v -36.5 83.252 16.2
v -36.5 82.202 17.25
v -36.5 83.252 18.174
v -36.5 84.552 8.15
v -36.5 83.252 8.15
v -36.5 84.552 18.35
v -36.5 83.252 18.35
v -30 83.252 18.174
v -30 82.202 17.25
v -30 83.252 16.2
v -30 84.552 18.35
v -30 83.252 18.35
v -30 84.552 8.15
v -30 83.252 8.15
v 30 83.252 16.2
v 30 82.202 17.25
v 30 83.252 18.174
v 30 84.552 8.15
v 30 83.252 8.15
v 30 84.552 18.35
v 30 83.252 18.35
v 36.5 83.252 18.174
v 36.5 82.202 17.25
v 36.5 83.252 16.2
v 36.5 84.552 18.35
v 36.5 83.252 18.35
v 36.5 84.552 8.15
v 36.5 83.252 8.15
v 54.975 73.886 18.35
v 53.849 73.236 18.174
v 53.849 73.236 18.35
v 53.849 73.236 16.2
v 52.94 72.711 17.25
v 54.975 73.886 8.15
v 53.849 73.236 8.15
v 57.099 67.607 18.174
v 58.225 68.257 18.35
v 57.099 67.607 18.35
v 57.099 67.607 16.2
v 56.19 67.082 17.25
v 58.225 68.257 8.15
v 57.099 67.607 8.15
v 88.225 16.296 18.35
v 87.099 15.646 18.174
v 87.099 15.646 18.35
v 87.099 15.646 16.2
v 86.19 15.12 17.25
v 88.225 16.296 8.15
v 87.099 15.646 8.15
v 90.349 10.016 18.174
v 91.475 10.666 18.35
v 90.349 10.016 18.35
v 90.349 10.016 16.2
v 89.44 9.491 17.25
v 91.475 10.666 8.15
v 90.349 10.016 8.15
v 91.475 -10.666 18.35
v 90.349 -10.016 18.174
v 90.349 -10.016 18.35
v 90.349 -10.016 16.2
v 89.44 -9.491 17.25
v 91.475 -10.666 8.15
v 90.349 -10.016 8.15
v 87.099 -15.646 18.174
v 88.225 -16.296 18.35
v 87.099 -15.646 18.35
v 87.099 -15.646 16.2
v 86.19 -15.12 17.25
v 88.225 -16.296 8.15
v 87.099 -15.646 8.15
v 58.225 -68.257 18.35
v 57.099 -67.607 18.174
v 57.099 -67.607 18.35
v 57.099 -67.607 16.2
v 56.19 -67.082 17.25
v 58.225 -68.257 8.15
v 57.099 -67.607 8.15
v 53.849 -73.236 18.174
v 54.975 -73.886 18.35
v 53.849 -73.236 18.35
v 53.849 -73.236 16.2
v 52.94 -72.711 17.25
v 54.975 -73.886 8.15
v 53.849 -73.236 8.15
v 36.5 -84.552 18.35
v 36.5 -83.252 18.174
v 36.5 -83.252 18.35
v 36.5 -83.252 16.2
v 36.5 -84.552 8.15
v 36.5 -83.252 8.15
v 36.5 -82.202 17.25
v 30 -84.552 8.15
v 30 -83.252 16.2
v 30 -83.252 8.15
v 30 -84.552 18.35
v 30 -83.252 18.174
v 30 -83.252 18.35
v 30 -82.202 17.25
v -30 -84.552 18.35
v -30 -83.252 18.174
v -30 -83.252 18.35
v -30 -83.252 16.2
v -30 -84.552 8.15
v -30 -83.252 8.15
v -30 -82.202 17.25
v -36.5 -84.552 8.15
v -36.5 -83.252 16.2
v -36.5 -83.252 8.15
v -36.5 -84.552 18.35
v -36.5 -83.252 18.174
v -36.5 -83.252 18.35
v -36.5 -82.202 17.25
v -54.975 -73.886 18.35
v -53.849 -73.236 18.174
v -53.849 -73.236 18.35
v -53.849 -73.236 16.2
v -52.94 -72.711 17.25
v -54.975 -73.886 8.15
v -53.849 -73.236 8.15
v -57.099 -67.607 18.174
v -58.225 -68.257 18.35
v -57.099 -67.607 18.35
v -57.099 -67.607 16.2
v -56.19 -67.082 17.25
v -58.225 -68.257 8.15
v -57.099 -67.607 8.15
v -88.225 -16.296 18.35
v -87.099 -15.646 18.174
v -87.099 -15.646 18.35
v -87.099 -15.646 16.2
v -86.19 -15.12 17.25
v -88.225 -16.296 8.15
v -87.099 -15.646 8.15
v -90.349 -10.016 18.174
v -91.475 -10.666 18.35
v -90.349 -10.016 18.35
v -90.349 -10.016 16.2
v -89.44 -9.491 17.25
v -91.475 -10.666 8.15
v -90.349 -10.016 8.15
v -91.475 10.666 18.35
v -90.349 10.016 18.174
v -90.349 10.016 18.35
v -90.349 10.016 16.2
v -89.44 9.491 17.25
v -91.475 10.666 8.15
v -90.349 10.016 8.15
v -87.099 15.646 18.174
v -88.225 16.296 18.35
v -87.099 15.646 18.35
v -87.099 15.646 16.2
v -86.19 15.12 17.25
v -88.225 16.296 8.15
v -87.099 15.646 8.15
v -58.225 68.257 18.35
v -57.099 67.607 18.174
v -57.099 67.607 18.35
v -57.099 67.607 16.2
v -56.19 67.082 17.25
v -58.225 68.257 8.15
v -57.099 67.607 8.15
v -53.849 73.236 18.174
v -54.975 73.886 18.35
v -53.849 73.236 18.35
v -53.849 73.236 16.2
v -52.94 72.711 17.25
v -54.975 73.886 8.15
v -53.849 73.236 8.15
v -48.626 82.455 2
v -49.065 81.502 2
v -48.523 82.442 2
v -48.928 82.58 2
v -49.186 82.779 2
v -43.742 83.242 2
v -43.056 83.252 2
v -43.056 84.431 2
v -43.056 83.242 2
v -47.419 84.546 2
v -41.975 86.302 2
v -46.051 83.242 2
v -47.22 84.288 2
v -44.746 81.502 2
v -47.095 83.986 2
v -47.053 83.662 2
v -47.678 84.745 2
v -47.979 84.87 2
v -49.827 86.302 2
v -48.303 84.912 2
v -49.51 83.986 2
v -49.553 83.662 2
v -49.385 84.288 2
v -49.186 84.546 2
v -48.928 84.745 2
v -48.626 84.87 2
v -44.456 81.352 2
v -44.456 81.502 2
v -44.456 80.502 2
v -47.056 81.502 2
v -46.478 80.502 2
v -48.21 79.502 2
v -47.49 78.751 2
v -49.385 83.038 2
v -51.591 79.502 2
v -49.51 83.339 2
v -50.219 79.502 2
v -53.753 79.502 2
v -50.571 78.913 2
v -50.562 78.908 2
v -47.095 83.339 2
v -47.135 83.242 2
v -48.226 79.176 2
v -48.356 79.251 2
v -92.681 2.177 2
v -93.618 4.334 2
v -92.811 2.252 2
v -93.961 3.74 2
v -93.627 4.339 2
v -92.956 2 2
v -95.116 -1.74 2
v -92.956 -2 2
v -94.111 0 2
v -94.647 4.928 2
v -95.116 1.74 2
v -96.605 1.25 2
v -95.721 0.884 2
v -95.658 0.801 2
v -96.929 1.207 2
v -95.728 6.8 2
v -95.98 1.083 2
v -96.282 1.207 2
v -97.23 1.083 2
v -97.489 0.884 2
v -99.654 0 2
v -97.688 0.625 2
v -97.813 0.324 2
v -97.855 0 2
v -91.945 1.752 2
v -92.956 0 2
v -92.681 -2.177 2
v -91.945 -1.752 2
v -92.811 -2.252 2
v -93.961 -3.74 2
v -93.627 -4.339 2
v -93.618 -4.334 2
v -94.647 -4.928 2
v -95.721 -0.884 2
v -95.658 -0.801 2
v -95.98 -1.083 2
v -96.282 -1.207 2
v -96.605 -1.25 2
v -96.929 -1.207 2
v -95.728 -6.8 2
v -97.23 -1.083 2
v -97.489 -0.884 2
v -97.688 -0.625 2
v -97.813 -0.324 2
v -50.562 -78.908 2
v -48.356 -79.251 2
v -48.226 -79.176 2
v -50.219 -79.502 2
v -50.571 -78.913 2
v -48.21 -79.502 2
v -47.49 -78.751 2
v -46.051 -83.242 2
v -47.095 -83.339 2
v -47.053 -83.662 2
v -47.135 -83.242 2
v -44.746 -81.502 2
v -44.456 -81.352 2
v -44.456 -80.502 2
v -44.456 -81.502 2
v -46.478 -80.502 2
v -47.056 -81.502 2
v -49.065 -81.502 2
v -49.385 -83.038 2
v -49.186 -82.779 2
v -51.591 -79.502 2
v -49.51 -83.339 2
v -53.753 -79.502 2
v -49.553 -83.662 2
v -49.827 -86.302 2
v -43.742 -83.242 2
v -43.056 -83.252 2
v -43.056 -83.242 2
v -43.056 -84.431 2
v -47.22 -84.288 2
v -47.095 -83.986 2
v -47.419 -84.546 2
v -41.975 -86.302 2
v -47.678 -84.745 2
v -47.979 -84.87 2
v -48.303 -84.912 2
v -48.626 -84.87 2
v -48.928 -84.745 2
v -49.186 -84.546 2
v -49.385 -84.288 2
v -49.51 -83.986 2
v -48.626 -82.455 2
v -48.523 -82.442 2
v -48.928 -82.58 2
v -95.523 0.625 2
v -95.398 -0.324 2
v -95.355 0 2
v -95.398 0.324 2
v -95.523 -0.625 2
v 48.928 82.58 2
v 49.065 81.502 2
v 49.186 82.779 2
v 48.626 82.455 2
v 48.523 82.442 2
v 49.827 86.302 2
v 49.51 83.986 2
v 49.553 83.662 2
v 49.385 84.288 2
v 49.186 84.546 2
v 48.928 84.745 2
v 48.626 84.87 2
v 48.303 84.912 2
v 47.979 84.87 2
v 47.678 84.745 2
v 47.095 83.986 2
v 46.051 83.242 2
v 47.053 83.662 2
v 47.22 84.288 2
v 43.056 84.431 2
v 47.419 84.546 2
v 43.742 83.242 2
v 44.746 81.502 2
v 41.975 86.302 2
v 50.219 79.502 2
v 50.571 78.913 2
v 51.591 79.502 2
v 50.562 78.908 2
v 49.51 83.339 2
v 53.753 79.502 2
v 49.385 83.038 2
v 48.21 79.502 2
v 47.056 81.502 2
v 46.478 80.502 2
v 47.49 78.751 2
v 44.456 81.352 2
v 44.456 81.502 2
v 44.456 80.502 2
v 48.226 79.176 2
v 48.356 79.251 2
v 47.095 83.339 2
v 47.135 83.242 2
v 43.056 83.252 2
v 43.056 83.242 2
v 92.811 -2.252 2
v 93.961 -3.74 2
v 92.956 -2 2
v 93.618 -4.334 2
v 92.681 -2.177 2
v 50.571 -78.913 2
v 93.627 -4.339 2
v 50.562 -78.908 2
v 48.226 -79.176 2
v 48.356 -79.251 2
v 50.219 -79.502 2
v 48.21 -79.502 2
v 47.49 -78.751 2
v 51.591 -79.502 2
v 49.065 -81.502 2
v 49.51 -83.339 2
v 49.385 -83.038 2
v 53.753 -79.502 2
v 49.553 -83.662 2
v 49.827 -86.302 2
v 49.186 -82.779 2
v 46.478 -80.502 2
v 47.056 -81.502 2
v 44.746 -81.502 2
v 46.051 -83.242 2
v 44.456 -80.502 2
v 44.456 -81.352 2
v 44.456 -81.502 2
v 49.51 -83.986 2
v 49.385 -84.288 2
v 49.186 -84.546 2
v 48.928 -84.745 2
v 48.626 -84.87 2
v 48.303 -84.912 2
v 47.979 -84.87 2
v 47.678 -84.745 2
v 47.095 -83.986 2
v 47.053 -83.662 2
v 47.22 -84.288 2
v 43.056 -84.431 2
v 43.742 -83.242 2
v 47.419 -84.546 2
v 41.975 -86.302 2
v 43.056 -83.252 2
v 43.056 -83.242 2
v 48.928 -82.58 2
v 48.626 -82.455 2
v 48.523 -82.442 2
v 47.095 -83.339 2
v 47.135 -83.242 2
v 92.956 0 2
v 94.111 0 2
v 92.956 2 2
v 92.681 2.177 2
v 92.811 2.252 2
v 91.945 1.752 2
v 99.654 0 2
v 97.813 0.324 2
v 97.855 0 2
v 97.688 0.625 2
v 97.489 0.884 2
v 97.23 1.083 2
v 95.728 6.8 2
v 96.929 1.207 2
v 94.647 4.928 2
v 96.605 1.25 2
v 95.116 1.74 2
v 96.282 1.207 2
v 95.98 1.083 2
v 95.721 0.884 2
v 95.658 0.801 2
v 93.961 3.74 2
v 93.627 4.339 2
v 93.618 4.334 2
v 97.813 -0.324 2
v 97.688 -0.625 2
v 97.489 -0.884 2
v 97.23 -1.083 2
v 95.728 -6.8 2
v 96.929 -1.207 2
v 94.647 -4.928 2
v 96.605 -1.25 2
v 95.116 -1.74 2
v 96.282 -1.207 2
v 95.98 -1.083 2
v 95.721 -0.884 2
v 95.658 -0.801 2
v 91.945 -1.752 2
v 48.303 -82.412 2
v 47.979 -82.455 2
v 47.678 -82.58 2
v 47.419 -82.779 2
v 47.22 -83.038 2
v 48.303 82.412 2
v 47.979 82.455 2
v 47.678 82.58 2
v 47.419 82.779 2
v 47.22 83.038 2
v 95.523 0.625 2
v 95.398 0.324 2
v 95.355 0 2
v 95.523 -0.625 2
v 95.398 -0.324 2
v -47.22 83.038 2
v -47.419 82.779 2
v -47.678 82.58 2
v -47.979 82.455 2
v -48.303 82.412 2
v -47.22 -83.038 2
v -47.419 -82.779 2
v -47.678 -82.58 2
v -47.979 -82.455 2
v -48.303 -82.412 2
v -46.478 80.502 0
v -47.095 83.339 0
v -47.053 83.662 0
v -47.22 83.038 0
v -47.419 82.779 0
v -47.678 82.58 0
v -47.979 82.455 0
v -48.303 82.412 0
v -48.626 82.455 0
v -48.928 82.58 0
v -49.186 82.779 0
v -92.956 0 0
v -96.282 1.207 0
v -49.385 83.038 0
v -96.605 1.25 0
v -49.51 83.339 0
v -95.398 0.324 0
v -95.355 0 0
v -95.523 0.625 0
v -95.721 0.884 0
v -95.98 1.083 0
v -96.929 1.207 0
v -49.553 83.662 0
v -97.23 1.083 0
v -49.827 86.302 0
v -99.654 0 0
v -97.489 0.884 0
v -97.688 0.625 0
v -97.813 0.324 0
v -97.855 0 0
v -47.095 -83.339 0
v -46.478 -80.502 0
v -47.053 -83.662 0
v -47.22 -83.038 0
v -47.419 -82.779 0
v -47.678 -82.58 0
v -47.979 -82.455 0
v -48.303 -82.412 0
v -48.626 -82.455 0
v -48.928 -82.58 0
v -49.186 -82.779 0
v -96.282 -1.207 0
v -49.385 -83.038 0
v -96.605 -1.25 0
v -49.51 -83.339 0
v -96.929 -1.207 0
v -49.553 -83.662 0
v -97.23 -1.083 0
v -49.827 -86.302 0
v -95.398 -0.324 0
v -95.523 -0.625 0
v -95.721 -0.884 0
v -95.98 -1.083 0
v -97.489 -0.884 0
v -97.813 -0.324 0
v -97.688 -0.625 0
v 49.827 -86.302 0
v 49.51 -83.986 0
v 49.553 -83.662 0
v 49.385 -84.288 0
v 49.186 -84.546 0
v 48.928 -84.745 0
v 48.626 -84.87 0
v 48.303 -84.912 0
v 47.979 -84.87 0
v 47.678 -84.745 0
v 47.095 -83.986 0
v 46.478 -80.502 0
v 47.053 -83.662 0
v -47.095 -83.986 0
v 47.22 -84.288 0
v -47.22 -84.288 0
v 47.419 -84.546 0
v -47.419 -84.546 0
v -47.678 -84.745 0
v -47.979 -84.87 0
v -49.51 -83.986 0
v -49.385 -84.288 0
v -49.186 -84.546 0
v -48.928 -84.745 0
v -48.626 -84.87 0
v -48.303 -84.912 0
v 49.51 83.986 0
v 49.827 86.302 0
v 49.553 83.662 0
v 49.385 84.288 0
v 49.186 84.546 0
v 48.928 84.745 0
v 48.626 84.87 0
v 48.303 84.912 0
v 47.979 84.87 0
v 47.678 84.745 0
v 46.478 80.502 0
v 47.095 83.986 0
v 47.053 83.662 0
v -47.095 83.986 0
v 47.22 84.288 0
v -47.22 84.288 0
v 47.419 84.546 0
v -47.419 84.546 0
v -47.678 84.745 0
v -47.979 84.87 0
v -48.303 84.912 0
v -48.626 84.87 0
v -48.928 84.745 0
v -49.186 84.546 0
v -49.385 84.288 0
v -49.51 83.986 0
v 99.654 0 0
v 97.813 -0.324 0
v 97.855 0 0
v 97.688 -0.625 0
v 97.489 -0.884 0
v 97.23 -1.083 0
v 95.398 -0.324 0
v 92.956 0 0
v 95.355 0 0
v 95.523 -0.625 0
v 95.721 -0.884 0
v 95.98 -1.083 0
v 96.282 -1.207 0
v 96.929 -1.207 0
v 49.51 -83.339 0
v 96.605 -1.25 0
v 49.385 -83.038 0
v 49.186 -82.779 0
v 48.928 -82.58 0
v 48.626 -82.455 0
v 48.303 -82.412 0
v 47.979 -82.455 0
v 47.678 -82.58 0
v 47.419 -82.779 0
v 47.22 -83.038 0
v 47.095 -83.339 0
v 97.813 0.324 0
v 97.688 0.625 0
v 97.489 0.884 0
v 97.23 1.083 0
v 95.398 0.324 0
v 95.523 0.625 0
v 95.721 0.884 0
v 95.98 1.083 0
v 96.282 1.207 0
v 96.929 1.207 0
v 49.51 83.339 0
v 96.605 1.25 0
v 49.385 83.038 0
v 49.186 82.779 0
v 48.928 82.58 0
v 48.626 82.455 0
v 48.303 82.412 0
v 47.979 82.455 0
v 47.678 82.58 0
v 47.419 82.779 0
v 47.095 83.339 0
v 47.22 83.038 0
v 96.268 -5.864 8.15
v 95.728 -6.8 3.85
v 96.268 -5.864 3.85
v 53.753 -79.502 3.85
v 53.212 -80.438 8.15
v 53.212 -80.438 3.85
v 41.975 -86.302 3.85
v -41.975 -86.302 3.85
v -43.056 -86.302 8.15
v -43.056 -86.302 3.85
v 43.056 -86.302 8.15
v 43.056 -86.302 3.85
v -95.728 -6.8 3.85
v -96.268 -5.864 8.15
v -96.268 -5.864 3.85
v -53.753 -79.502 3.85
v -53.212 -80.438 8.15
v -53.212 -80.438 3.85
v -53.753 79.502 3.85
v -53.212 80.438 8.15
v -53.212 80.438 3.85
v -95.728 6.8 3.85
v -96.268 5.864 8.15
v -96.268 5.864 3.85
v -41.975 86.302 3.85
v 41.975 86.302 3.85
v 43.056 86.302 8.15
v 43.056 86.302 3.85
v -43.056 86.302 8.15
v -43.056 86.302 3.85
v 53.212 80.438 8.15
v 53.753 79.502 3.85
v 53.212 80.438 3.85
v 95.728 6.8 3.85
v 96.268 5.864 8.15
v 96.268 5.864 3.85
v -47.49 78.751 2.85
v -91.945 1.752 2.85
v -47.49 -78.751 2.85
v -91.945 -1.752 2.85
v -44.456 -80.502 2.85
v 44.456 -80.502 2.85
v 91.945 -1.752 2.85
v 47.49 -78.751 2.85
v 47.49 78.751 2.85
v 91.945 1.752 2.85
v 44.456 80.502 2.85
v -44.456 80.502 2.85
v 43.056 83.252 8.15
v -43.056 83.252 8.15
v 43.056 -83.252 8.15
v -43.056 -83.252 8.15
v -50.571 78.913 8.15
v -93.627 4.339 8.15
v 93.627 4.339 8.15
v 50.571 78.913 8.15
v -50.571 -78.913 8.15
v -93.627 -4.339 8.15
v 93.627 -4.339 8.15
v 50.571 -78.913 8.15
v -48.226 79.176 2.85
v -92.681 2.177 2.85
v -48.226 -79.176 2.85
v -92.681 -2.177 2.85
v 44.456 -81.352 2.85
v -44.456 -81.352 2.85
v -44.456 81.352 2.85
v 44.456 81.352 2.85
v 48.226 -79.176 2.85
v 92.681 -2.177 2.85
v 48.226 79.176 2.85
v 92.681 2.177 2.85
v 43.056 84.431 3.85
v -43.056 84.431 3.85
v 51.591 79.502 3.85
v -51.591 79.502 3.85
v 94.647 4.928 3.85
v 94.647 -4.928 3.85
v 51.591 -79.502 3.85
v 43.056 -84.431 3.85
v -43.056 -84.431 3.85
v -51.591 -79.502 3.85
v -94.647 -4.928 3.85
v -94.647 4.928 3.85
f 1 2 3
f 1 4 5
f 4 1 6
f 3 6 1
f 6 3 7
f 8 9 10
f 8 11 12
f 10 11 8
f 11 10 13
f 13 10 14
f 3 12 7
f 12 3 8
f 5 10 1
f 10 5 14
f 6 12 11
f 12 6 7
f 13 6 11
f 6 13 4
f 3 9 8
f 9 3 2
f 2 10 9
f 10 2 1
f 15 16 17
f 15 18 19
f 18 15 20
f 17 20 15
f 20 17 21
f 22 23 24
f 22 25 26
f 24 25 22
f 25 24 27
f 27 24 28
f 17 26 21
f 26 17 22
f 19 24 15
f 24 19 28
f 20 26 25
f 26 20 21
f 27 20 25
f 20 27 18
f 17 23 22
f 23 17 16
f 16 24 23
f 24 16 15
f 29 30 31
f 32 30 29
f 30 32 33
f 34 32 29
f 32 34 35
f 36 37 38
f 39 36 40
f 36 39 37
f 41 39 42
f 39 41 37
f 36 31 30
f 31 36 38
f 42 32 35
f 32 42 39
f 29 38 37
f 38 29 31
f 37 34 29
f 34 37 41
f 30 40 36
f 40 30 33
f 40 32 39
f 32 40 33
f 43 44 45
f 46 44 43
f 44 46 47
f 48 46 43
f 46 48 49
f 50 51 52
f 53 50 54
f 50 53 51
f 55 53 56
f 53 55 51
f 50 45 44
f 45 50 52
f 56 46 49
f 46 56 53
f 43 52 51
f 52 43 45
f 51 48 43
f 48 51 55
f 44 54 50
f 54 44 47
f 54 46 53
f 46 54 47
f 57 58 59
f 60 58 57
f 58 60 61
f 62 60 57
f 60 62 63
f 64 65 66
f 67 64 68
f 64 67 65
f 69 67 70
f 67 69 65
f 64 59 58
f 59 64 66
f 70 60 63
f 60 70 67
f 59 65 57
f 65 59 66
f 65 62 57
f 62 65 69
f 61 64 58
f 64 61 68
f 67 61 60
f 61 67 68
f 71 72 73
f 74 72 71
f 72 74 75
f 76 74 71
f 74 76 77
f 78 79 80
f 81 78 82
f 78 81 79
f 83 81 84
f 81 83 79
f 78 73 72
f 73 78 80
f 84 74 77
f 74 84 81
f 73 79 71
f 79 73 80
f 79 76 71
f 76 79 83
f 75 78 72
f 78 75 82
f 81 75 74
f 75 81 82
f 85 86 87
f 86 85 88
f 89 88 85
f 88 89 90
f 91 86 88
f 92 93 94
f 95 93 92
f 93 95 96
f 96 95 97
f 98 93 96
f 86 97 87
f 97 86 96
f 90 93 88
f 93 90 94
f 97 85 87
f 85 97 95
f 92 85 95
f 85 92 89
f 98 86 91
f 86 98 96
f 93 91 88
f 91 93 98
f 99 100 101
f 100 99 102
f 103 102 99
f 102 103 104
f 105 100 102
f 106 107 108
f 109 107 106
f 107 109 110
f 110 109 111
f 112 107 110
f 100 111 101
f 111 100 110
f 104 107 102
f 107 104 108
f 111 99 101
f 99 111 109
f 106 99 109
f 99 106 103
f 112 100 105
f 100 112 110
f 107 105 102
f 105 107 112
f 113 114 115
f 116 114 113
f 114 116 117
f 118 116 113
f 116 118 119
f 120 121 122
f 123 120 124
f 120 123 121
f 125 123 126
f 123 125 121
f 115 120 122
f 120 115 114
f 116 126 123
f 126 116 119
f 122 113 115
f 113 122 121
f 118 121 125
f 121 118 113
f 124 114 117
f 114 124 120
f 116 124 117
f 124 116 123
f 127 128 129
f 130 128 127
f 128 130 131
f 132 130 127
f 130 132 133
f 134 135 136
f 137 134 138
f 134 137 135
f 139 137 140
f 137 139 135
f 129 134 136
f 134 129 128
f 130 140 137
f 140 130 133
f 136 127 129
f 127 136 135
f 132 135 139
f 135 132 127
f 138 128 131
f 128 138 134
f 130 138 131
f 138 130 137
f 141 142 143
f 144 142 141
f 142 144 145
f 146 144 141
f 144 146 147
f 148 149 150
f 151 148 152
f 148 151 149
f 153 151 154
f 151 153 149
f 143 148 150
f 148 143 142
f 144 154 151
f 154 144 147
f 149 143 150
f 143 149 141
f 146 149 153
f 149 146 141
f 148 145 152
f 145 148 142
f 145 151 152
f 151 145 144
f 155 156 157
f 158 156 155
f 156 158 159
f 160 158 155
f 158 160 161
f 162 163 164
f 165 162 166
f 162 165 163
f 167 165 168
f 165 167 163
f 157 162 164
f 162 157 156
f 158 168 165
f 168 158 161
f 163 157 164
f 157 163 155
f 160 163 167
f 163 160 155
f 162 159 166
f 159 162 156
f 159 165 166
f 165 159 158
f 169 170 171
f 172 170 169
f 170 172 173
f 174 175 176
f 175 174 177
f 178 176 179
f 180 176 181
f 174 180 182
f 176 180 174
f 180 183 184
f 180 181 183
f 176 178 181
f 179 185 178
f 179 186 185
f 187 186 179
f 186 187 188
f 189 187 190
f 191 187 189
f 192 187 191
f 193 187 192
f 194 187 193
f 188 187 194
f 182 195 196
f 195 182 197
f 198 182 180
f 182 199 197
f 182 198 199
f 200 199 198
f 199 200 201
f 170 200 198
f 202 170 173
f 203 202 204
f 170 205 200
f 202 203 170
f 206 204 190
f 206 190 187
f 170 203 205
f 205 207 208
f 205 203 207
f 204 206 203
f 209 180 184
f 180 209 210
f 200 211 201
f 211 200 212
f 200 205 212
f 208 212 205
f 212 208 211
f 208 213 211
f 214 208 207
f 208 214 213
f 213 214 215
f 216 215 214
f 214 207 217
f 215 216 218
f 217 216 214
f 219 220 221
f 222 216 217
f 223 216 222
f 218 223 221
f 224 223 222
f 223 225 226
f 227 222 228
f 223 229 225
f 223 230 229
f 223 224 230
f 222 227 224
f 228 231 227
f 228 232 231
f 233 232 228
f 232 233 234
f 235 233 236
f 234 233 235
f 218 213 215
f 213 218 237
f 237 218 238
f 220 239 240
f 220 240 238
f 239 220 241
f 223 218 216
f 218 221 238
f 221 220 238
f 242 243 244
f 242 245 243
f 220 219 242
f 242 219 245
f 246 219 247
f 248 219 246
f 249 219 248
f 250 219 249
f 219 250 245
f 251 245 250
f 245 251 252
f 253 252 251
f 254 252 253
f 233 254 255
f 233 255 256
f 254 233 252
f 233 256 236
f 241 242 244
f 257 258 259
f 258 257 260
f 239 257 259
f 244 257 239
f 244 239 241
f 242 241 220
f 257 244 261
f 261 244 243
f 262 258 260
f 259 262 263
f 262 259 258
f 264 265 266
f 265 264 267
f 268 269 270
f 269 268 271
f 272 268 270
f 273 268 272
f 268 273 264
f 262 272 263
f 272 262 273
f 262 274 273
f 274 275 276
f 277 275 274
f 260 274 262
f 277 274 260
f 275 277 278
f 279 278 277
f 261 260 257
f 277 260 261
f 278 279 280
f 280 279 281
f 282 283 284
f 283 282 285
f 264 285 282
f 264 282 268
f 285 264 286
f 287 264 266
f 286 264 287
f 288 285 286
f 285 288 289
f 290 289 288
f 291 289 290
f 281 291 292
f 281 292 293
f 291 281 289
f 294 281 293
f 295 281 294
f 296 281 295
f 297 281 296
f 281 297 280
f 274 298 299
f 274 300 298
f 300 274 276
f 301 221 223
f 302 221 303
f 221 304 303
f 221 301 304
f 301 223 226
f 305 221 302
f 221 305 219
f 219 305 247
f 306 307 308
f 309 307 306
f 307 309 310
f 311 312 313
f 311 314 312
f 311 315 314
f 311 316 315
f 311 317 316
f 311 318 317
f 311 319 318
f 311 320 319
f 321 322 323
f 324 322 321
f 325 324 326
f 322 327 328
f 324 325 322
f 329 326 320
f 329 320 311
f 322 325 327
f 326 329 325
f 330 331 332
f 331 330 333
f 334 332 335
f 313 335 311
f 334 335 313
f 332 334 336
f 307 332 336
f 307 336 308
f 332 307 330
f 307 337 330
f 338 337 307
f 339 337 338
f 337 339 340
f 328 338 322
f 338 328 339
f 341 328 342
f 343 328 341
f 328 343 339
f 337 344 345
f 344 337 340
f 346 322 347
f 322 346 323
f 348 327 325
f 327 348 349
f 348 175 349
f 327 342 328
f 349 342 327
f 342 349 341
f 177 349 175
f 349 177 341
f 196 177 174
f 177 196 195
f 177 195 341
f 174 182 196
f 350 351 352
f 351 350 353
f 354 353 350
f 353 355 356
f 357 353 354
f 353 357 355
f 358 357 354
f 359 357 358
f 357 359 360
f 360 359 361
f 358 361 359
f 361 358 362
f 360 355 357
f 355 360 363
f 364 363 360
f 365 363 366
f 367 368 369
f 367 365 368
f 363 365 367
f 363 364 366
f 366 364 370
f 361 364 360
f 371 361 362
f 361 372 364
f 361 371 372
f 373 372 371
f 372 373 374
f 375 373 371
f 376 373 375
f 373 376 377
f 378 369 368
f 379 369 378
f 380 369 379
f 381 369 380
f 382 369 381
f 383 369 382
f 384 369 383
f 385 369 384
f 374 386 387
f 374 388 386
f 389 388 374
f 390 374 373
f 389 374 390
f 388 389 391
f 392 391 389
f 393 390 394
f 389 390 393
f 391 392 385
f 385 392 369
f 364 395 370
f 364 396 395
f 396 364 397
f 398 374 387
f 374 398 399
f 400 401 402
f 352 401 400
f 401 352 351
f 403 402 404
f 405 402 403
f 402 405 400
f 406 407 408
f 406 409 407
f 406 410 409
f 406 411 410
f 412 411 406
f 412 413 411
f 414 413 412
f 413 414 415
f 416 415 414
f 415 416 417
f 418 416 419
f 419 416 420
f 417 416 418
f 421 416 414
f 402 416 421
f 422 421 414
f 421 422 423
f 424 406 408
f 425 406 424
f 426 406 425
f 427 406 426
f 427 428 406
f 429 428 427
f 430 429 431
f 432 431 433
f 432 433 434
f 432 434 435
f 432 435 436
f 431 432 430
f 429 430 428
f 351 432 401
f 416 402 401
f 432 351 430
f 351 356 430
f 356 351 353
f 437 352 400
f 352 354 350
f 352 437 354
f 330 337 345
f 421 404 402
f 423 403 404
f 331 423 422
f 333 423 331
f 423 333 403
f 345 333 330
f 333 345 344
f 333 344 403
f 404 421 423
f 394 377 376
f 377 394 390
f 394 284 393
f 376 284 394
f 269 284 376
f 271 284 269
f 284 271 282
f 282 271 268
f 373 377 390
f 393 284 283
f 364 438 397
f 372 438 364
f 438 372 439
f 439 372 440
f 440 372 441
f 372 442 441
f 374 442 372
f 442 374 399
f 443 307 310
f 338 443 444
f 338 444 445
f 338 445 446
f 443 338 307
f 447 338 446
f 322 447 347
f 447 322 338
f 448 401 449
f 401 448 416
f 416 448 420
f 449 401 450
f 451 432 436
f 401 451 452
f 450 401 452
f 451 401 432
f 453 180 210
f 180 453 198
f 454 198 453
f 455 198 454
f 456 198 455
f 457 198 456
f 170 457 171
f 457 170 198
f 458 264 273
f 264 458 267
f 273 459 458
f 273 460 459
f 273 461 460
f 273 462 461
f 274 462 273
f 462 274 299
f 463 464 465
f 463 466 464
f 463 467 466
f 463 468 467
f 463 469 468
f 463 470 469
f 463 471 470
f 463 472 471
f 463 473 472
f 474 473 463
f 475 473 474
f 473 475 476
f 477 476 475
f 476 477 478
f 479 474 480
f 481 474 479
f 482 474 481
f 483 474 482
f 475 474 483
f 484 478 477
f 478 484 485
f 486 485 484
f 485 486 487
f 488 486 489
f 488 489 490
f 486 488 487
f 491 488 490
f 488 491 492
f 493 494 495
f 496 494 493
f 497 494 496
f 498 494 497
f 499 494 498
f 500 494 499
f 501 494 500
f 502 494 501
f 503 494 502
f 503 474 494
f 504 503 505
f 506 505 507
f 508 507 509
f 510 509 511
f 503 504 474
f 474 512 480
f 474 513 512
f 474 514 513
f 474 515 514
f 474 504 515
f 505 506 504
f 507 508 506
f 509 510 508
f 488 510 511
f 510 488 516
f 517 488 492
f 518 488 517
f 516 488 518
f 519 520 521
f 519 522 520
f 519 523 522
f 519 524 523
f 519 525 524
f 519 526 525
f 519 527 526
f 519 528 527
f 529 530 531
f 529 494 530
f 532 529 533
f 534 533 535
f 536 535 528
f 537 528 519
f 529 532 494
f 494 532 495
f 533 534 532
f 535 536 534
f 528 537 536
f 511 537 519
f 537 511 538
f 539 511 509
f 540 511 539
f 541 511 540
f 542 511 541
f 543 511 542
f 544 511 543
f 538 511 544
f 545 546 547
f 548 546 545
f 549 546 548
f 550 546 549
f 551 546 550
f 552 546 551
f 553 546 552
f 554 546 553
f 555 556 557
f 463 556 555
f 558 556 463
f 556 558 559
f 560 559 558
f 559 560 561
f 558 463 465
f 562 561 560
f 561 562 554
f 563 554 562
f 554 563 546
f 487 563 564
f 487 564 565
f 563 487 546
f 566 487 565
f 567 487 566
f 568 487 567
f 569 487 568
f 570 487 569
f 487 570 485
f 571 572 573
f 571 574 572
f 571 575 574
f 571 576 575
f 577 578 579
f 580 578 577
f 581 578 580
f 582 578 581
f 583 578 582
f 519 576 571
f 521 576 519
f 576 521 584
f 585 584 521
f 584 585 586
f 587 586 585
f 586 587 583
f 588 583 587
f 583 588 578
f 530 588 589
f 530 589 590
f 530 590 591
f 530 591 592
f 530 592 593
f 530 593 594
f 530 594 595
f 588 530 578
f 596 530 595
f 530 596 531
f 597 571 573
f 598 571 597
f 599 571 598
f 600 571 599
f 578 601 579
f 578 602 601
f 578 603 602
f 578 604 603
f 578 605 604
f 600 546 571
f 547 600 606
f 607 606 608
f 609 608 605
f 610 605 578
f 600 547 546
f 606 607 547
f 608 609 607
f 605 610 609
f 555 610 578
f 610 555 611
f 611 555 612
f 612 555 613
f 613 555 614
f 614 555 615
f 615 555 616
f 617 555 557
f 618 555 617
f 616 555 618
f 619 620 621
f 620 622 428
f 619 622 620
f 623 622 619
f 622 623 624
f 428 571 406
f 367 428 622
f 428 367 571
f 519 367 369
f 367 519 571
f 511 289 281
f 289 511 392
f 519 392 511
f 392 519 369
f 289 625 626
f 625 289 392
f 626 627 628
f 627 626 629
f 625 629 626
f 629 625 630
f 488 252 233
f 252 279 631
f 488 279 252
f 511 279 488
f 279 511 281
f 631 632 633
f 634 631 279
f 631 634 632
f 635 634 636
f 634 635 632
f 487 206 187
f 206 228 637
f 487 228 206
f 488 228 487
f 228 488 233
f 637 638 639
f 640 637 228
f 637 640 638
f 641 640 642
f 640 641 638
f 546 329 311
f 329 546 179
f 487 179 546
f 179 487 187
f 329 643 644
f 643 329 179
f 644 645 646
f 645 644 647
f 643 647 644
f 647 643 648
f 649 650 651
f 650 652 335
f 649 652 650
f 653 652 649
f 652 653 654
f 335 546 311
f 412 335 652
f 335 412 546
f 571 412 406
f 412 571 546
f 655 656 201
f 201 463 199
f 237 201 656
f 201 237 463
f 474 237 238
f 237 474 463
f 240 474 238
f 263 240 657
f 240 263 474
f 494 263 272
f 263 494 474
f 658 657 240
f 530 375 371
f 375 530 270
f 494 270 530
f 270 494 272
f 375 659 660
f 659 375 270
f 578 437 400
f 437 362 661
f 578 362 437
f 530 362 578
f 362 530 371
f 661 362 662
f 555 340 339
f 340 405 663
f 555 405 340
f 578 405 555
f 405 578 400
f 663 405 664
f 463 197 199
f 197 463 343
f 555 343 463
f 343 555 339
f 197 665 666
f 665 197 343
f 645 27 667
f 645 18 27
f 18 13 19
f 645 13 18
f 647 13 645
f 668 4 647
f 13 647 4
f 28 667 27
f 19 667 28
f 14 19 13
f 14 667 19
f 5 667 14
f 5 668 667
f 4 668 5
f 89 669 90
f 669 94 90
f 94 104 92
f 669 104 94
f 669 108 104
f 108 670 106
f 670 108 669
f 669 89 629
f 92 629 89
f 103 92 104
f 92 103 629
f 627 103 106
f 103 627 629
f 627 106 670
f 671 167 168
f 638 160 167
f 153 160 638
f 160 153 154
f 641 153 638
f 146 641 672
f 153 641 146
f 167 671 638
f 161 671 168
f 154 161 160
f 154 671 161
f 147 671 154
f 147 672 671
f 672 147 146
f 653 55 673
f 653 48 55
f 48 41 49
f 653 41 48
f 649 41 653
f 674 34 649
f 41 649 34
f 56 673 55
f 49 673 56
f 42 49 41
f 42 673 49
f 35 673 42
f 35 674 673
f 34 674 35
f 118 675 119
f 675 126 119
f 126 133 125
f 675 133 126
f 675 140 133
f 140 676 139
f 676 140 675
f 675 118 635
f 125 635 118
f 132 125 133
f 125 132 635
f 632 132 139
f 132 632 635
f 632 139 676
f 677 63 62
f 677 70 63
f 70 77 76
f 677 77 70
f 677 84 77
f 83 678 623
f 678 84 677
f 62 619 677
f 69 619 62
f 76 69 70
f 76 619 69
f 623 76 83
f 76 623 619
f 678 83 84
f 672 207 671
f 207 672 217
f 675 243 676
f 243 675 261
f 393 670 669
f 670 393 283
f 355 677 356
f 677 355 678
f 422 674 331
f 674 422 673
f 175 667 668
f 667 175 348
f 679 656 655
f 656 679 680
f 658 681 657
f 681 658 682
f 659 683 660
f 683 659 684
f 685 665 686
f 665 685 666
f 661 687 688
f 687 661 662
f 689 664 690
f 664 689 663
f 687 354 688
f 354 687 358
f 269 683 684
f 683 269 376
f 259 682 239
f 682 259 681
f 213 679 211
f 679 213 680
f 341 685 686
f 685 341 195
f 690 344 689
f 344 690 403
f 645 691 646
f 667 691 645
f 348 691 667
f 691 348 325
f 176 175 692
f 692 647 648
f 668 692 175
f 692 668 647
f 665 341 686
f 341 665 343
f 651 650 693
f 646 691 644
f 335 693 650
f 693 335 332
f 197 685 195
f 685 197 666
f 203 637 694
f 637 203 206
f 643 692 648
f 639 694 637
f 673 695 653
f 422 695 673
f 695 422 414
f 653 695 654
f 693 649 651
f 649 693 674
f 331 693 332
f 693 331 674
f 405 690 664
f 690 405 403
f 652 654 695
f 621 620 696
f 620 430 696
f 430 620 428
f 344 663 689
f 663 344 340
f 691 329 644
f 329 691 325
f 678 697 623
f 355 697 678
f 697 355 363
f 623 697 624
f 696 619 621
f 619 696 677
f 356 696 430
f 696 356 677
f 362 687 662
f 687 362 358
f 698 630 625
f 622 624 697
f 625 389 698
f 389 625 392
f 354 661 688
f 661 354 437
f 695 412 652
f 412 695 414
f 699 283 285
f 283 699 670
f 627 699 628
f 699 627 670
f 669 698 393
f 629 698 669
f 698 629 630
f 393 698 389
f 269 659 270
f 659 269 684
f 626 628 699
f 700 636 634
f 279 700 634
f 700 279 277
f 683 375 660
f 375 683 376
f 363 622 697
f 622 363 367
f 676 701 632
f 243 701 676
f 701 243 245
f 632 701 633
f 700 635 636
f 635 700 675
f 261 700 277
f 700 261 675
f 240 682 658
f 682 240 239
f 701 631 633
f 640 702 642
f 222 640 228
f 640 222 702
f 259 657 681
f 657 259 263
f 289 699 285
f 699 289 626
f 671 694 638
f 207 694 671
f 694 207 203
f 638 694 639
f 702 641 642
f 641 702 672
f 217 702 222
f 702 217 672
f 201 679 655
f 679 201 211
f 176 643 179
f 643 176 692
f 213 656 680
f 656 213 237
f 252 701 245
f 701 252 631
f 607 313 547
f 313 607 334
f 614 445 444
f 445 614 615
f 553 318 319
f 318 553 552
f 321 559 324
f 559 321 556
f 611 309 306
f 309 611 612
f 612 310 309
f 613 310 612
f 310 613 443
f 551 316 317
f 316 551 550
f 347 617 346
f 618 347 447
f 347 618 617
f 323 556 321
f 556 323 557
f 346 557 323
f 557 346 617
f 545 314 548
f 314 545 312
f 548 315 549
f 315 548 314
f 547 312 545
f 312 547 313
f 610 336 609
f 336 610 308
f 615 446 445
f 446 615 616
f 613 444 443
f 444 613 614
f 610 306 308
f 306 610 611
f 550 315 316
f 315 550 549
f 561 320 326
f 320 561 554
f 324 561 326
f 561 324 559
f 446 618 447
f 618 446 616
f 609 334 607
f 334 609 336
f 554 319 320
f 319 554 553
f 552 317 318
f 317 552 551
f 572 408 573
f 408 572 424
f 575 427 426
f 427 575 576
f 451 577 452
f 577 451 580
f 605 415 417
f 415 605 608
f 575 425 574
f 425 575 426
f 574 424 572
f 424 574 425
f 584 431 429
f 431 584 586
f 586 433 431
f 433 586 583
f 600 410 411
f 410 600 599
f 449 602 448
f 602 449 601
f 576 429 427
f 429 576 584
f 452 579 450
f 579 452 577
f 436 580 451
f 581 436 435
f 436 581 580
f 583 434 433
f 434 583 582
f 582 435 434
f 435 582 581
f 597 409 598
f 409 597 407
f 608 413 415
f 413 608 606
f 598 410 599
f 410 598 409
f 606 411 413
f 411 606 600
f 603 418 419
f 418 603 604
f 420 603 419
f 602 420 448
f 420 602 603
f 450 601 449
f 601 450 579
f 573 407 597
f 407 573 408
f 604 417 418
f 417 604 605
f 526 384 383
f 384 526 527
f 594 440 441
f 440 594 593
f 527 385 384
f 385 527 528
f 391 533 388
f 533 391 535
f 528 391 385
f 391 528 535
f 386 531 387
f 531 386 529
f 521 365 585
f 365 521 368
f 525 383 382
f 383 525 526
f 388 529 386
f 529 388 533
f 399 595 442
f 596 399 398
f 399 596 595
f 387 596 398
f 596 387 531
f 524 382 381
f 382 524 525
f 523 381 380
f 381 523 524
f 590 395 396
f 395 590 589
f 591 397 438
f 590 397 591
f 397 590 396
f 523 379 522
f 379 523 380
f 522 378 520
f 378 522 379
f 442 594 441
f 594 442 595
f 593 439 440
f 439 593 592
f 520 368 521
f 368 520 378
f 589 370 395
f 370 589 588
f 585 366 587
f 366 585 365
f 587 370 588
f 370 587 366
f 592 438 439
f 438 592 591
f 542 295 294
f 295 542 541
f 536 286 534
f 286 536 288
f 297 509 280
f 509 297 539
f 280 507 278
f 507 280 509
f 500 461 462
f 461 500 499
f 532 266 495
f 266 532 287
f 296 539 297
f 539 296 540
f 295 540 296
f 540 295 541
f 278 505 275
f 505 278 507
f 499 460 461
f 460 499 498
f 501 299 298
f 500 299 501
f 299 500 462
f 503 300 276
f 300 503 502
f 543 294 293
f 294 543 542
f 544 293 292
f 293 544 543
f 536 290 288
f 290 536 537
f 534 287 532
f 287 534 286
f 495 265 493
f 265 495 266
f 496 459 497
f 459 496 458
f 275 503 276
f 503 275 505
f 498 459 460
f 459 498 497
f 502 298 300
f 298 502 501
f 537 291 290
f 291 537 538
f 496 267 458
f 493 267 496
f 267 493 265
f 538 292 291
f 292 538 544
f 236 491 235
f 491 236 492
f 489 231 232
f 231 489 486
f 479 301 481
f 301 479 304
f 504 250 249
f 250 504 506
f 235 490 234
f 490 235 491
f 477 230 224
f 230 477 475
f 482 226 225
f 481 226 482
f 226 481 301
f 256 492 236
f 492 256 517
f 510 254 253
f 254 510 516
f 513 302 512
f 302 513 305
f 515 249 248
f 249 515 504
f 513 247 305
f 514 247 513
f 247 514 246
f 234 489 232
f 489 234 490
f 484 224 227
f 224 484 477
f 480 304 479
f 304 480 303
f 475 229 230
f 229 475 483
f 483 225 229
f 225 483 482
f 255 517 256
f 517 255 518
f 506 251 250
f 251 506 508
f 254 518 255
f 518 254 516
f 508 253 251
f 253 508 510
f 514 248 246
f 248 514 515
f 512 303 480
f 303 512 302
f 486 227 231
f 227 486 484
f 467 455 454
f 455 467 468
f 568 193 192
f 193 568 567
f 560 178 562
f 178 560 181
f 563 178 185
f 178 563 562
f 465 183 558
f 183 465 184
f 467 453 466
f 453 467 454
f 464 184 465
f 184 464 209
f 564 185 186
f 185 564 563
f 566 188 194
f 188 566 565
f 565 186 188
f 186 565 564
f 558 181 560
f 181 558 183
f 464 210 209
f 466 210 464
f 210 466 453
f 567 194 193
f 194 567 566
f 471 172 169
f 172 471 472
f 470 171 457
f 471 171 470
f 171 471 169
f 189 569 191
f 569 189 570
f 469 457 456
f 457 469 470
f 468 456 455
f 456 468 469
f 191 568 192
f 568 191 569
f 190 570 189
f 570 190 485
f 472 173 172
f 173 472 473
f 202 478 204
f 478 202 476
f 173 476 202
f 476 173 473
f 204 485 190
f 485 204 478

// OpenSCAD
// file: common.scad
// =====================================================================
//  common.scad -- helpers and mock PCBs shared by the WP 1.6 part files.
//  Part files `include <common.scad>` (this pulls in params.scad too).
// =====================================================================
include <params.scad>

// ---------------- polygon helpers ----------------
function circ(a) = a / cos(180 / n_sides);                 // apothem -> circumradius
module ngon(a) rotate(pr_rot) circle(r = circ(a), $fn = n_sides);

// Polygon ring between apothems a0 and a1, from z0 to z1.
module ring_band(a0, a1, z0, z1)
    translate([0, 0, z0]) linear_extrude(z1 - z0) difference() { ngon(a1); if (a0 > 0) ngon(a0); }

module on_sides(list) for (k = list) rotate([0, 0, k * 360 / n_sides]) children();
module all_sides() on_sides([0 : n_sides - 1]) children();

// +X points at corner k (between side k and side k+1).
module at_corners() for (k = [0 : n_sides - 1]) rotate([0, 0, -90 + 180 / n_sides + k * 360 / n_sides]) children();

// Box in side-local coordinates: X along the side, r = apothem (r grows toward -Y), z.
module sbox(x0, x1, r0, r1, z0, z1) translate([x0, -r1, z0]) cube([x1 - x0, r1 - r0, z1 - z0]);

// Prism with a cross-section given as [r, z] points, running X = x0..x1 (side-local).
module rz_prism(x0, x1, pts)
    translate([x0, 0, 0]) rotate([90, 0, 90]) linear_extrude(x1 - x0) polygon([for (p = pts) [-p[0], p[1]]]);

// Controller trapezoid (side-0 local, 2D). y_ext extends the base past the board face.
// y = distance from the code-0 inward face toward the panel centre.
function ctrl_hw(y) = ctrl_base / 2 - (y - ctrl_gap) * tan(90 - ctrl_side);
module ctrl_2d(y_ext = 0) {
    y0 = ctrl_gap - y_ext;
    y1 = ctrl_gap + ctrl_depth;
    polygon([[-ctrl_hw(y0), -Ai + y0], [ctrl_hw(y0), -Ai + y0],
             [ctrl_hw(y1), -Ai + y1], [-ctrl_hw(y1), -Ai + y1]]);
}

// ---------------- controller edges in the CONTROLLER frame (LAYOUT-NOTES §1) ----------------
// Frame: x to the right and y into the board, seen from F.Cu (the wall side); base edge at y = ctrl_gap.
// Global: X = -x, Y = -Ai + y. Edges run in the notes' order: 0 base (from the left corner),
// 1 right side (from the base corner), 2 top (from the right corner), 3 left side (from the top corner).
ctrl_top_hw = ctrl_base / 2 - ctrl_depth * tan(90 - ctrl_side);
ctrl_c = [[-ctrl_base / 2, ctrl_gap], [ctrl_base / 2, ctrl_gap],
          [ctrl_top_hw, ctrl_gap + ctrl_depth], [-ctrl_top_hw, ctrl_gap + ctrl_depth]];
function ctrl_dir(i) = let(a = ctrl_c[i], b = ctrl_c[(i + 1) % 4], d = b - a) d / norm(d);
function ctrl_nrm(i) = let(d = ctrl_dir(i)) [d[1], -d[0]];          // outward normal
function ctrl_pt(i, s) = ctrl_c[i] + s * ctrl_dir(i);
function to_glob(p) = [-p[0], -Ai + p[1]];
function nrm_glob(n) = [-n[0], n[1]];

// 2D strip along edge i, s0..s1, from `outw` outside the edge to `inw` inside it (global coordinates).
module ctrl_edge_strip(i, s0, s1, outw, inw) {
    n = ctrl_nrm(i);
    polygon([to_glob(ctrl_pt(i, s0) + outw * n), to_glob(ctrl_pt(i, s1) + outw * n),
             to_glob(ctrl_pt(i, s1) - inw * n), to_glob(ctrl_pt(i, s0) - inw * n)]);
}

// Place children at s along edge i, local +Y = outward normal, origin on the edge offset by `off`.
module at_ctrl_edge(i, s, off = 0) {
    n = ctrl_nrm(i);
    ng = nrm_glob(n);
    translate(to_glob(ctrl_pt(i, s) + off * n)) rotate(atan2(ng[1], ng[0]) - 90) children();
}

// ---------------- mock PCBs (assembly only, never printed) ----------------
// One edge board in side-local position. Board x = -X (see params.scad header).
module mock_edge_board(code0 = false) {
    color("darkgreen") sbox(-HL, HL, Ai, Ae, 0, board_H);
    // exterior contact pads (B.Cu, gold)
    color("gold") for (x = pad_x) sbox(-x - 1.5, -x + 1.5, Ae, Ae + 0.05, 0.6, strip_top);
    // exterior corner power pads
    color("gold") for (s = [-1, 1]) for (zz = [[0.5, 3.5], [6.0, 8.5], [11.0, 12.6]])
        sbox(s > 0 ? HL - corner_pad_ex_w : -HL, s > 0 ? HL : -HL + corner_pad_ex_w, Ae, Ae + 0.05, zz[0], zz[1]);
    // LEDs on the inward face
    for (x = led_x) color("white")
        sbox(-x - led_size / 2, -x + led_size / 2, Ai - led_proud, Ai, led_z - led_size / 2, led_z + led_size / 2);
    // J4 joint pads (inward face, every board)
    color(code0 ? "gold" : "goldenrod") for (i = [0:9])
        sbox(-(-11.43 + 2.54 * i) - 0.65, -(-11.43 + 2.54 * i) + 0.65, Ai - 0.05, Ai, j4_z[0], j4_z[1]);
    // inward corner signal pads
    color("goldenrod") for (s = [-1, 1])
        sbox(s > 0 ? HL - corner_pad_in_w : -HL, s > 0 ? HL : -HL + corner_pad_in_w, Ai - 0.05, Ai, 0.85, 12.15);
}

module mock_boards() for (k = [0 : n_sides - 1]) rotate([0, 0, k * 360 / n_sides]) mock_edge_board(k == 0);

// Controller board at its rev A position (parts on the wall side). Mirror: controller x (seen from F.Cu) = -X.
module mock_controller() {
    color("white") translate([0, 0, z_ctrl_bot]) linear_extrude(ctrl_t)
        offset(r = ctrl_fillet) offset(delta = -ctrl_fillet) ctrl_2d();
    // L1 inductor, the tallest part (4.5 mm), hanging toward the wall
    color("dimgray") translate([-ctrl_L1[0] - ctrl_L1[2] / 2, -Ai + ctrl_gap + ctrl_L1[1] - ctrl_L1[3] / 2, z_ctrl_bot - ctrl_L1[4]])
        cube([ctrl_L1[2], ctrl_L1[3], ctrl_L1[4]]);
    // joint fillet zone
    color("silver") translate([-12.33, -Ai, z_ctrl_bot - 1.5]) cube([24.66, 2.0, 1.5]);
}

// Seam bridge in side-local position: PCB centred on the seam line r = As, springs on both faces.
module mock_bridge() {
    color("darkolivegreen") sbox(-bridge_len / 2, bridge_len / 2, As - bridge_t / 2, As + bridge_t / 2, bridge_z_bot, bridge_z_top);
    sh = spring_h_at_d;
    color("silver") for (x = pad_x) for (s = [-1, 1])
        sbox(x - spring_w / 2, x + spring_w / 2,
             s < 0 ? As - bridge_t / 2 - sh : As + bridge_t / 2,
             s < 0 ? As - bridge_t / 2 : As + bridge_t / 2 + sh,
             spring_contact_z - 0.9, spring_contact_z + 2.6);
}

// Diffuser film (cut template shape), 2D.
module film_2d() intersection() {
    ngon(film_a);
    // half-planes x' <= film_cr at every corner (corners cut clear of the registration pins)
    intersection_for (k = [0 : n_sides - 1])
        rotate(-90 + 180 / n_sides + k * 360 / n_sides) translate([film_cr - 400, -200]) square([400, 400]);
}
// main file
// =====================================================================
//  frame.scad -- WP 1.6 panel frame ("crown"), white PETG.
//
//  A polygon ring that caps the six upright edge boards:
//   - groove: each board's top edge sits in a groove (board_t + 2 x 0.15), between the
//     exterior wall (outside) and a 0.7 mm inward lip (inside, above the LEDs). The lip and
//     the back-plate rim take the springs' inward push (SPEC §3.3 "Forces").
//   - exterior wall: runs down to z_skirt, just above the seam bridge, so the bridge and
//     springs have the seam to themselves below it (contact strip z 0-6).
//   - corners: the exterior wall and the lip stop short of every corner so the corner
//     joints (SPEC §3.4) can be drag-soldered with the boards in the frame; only the 2 mm
//     cap spans the corner. Corner pin holes take the diffuser risers / bezel.
//   - snap legs: two per side, in the seam outside the bridge carrier. Their barbs snap
//     under the back plate's tabs, which sit under the boards' wall edges, so frame, boards
//     and back plate lock together with no glue.
//
//  Print: cap DOWN on the bed (part = "print"). No supports: the barbs' undersides are 45 deg.
//  Export:  openscad.com -o stl/frame.stl -D "part=\"print\"" frame.scad
// =====================================================================
include <common.scad>

part = "print";      // print | assembly

module frame_leg(s) {
    x0 = s > 0 ? leg_x[0] : -leg_x[1];
    x1 = s > 0 ? leg_x[1] : -leg_x[0];
    r_in  = Ae + gclr;
    r_out = r_in + leg_t;
    r_tip = tab_out - hook_eng;          // barb tip under the plate tab
    z_tip = z_pb - hook_eng;             // 45 deg retaining face passes through the tab's outer corner
    sbox(x0, x1, r_in, r_out, z_leg_bot, z_skirt + 1);
    // barb: ramp below (the rising plate tab pushes the leg out), 45 deg retaining face above
    rz_prism(x0, x1, [[r_in + 0.2, z_leg_bot], [r_tip, z_tip], [r_in + 0.2, z_tip + (r_in + 0.2 - r_tip)]]);
}

module frame() {
    difference() {
        union() {
            ring_band(Ai - lip_w, Ao, board_H + gclr, z_cap_top);                       // cap
            ring_band(Ae + gclr, Ao, z_skirt, board_H + gclr + eps);                     // exterior wall
            ring_band(Ai - lip_w, Ai - gclr, board_H - lip_h, board_H + gclr + eps);     // inward lip
            all_sides() for (s = [-1, 1]) frame_leg(s);
        }
        all_sides() {
            // corner solder windows: exterior wall off within corner_zone of each board end
            sbox(HL - corner_zone, HL + 40, Ae + gclr - eps, Ao + 1, z_skirt - 1, board_H + gclr);
            sbox(-HL - 40, -HL + corner_zone, Ae + gclr - eps, Ao + 1, z_skirt - 1, board_H + gclr);
            // lip off near the corners (inward corner pads and their solder beads)
            sbox(HL - corner_lip, HL + 40, Ai - lip_w - 1, Ai, board_H - lip_h - 1, board_H + gclr);
            sbox(-HL - 40, -HL + corner_lip, Ai - lip_w - 1, Ai, board_H - lip_h - 1, board_H + gclr);
            // lip notches over inward-face test pads (TP11)
            for (tp = tp_inward) if (tp[1] + tp_dia / 2 > board_H - lip_h)
                sbox(-tp[0] - tp_dia / 2 - 0.5, -tp[0] + tp_dia / 2 + 0.5, Ai - lip_w - 1, Ai, board_H - lip_h - 1, board_H + gclr);
        }
        // registration holes for riser / bezel pins (through the cap at the corners)
        at_corners() translate([pin_cr, 0, board_H]) cylinder(d = pin_hole_d, h = 10, $fn = 24);
    }
}

if (part == "print") translate([0, 0, z_cap_top]) rotate([180, 0, 0]) frame();
else if (part == "assembly") frame();
